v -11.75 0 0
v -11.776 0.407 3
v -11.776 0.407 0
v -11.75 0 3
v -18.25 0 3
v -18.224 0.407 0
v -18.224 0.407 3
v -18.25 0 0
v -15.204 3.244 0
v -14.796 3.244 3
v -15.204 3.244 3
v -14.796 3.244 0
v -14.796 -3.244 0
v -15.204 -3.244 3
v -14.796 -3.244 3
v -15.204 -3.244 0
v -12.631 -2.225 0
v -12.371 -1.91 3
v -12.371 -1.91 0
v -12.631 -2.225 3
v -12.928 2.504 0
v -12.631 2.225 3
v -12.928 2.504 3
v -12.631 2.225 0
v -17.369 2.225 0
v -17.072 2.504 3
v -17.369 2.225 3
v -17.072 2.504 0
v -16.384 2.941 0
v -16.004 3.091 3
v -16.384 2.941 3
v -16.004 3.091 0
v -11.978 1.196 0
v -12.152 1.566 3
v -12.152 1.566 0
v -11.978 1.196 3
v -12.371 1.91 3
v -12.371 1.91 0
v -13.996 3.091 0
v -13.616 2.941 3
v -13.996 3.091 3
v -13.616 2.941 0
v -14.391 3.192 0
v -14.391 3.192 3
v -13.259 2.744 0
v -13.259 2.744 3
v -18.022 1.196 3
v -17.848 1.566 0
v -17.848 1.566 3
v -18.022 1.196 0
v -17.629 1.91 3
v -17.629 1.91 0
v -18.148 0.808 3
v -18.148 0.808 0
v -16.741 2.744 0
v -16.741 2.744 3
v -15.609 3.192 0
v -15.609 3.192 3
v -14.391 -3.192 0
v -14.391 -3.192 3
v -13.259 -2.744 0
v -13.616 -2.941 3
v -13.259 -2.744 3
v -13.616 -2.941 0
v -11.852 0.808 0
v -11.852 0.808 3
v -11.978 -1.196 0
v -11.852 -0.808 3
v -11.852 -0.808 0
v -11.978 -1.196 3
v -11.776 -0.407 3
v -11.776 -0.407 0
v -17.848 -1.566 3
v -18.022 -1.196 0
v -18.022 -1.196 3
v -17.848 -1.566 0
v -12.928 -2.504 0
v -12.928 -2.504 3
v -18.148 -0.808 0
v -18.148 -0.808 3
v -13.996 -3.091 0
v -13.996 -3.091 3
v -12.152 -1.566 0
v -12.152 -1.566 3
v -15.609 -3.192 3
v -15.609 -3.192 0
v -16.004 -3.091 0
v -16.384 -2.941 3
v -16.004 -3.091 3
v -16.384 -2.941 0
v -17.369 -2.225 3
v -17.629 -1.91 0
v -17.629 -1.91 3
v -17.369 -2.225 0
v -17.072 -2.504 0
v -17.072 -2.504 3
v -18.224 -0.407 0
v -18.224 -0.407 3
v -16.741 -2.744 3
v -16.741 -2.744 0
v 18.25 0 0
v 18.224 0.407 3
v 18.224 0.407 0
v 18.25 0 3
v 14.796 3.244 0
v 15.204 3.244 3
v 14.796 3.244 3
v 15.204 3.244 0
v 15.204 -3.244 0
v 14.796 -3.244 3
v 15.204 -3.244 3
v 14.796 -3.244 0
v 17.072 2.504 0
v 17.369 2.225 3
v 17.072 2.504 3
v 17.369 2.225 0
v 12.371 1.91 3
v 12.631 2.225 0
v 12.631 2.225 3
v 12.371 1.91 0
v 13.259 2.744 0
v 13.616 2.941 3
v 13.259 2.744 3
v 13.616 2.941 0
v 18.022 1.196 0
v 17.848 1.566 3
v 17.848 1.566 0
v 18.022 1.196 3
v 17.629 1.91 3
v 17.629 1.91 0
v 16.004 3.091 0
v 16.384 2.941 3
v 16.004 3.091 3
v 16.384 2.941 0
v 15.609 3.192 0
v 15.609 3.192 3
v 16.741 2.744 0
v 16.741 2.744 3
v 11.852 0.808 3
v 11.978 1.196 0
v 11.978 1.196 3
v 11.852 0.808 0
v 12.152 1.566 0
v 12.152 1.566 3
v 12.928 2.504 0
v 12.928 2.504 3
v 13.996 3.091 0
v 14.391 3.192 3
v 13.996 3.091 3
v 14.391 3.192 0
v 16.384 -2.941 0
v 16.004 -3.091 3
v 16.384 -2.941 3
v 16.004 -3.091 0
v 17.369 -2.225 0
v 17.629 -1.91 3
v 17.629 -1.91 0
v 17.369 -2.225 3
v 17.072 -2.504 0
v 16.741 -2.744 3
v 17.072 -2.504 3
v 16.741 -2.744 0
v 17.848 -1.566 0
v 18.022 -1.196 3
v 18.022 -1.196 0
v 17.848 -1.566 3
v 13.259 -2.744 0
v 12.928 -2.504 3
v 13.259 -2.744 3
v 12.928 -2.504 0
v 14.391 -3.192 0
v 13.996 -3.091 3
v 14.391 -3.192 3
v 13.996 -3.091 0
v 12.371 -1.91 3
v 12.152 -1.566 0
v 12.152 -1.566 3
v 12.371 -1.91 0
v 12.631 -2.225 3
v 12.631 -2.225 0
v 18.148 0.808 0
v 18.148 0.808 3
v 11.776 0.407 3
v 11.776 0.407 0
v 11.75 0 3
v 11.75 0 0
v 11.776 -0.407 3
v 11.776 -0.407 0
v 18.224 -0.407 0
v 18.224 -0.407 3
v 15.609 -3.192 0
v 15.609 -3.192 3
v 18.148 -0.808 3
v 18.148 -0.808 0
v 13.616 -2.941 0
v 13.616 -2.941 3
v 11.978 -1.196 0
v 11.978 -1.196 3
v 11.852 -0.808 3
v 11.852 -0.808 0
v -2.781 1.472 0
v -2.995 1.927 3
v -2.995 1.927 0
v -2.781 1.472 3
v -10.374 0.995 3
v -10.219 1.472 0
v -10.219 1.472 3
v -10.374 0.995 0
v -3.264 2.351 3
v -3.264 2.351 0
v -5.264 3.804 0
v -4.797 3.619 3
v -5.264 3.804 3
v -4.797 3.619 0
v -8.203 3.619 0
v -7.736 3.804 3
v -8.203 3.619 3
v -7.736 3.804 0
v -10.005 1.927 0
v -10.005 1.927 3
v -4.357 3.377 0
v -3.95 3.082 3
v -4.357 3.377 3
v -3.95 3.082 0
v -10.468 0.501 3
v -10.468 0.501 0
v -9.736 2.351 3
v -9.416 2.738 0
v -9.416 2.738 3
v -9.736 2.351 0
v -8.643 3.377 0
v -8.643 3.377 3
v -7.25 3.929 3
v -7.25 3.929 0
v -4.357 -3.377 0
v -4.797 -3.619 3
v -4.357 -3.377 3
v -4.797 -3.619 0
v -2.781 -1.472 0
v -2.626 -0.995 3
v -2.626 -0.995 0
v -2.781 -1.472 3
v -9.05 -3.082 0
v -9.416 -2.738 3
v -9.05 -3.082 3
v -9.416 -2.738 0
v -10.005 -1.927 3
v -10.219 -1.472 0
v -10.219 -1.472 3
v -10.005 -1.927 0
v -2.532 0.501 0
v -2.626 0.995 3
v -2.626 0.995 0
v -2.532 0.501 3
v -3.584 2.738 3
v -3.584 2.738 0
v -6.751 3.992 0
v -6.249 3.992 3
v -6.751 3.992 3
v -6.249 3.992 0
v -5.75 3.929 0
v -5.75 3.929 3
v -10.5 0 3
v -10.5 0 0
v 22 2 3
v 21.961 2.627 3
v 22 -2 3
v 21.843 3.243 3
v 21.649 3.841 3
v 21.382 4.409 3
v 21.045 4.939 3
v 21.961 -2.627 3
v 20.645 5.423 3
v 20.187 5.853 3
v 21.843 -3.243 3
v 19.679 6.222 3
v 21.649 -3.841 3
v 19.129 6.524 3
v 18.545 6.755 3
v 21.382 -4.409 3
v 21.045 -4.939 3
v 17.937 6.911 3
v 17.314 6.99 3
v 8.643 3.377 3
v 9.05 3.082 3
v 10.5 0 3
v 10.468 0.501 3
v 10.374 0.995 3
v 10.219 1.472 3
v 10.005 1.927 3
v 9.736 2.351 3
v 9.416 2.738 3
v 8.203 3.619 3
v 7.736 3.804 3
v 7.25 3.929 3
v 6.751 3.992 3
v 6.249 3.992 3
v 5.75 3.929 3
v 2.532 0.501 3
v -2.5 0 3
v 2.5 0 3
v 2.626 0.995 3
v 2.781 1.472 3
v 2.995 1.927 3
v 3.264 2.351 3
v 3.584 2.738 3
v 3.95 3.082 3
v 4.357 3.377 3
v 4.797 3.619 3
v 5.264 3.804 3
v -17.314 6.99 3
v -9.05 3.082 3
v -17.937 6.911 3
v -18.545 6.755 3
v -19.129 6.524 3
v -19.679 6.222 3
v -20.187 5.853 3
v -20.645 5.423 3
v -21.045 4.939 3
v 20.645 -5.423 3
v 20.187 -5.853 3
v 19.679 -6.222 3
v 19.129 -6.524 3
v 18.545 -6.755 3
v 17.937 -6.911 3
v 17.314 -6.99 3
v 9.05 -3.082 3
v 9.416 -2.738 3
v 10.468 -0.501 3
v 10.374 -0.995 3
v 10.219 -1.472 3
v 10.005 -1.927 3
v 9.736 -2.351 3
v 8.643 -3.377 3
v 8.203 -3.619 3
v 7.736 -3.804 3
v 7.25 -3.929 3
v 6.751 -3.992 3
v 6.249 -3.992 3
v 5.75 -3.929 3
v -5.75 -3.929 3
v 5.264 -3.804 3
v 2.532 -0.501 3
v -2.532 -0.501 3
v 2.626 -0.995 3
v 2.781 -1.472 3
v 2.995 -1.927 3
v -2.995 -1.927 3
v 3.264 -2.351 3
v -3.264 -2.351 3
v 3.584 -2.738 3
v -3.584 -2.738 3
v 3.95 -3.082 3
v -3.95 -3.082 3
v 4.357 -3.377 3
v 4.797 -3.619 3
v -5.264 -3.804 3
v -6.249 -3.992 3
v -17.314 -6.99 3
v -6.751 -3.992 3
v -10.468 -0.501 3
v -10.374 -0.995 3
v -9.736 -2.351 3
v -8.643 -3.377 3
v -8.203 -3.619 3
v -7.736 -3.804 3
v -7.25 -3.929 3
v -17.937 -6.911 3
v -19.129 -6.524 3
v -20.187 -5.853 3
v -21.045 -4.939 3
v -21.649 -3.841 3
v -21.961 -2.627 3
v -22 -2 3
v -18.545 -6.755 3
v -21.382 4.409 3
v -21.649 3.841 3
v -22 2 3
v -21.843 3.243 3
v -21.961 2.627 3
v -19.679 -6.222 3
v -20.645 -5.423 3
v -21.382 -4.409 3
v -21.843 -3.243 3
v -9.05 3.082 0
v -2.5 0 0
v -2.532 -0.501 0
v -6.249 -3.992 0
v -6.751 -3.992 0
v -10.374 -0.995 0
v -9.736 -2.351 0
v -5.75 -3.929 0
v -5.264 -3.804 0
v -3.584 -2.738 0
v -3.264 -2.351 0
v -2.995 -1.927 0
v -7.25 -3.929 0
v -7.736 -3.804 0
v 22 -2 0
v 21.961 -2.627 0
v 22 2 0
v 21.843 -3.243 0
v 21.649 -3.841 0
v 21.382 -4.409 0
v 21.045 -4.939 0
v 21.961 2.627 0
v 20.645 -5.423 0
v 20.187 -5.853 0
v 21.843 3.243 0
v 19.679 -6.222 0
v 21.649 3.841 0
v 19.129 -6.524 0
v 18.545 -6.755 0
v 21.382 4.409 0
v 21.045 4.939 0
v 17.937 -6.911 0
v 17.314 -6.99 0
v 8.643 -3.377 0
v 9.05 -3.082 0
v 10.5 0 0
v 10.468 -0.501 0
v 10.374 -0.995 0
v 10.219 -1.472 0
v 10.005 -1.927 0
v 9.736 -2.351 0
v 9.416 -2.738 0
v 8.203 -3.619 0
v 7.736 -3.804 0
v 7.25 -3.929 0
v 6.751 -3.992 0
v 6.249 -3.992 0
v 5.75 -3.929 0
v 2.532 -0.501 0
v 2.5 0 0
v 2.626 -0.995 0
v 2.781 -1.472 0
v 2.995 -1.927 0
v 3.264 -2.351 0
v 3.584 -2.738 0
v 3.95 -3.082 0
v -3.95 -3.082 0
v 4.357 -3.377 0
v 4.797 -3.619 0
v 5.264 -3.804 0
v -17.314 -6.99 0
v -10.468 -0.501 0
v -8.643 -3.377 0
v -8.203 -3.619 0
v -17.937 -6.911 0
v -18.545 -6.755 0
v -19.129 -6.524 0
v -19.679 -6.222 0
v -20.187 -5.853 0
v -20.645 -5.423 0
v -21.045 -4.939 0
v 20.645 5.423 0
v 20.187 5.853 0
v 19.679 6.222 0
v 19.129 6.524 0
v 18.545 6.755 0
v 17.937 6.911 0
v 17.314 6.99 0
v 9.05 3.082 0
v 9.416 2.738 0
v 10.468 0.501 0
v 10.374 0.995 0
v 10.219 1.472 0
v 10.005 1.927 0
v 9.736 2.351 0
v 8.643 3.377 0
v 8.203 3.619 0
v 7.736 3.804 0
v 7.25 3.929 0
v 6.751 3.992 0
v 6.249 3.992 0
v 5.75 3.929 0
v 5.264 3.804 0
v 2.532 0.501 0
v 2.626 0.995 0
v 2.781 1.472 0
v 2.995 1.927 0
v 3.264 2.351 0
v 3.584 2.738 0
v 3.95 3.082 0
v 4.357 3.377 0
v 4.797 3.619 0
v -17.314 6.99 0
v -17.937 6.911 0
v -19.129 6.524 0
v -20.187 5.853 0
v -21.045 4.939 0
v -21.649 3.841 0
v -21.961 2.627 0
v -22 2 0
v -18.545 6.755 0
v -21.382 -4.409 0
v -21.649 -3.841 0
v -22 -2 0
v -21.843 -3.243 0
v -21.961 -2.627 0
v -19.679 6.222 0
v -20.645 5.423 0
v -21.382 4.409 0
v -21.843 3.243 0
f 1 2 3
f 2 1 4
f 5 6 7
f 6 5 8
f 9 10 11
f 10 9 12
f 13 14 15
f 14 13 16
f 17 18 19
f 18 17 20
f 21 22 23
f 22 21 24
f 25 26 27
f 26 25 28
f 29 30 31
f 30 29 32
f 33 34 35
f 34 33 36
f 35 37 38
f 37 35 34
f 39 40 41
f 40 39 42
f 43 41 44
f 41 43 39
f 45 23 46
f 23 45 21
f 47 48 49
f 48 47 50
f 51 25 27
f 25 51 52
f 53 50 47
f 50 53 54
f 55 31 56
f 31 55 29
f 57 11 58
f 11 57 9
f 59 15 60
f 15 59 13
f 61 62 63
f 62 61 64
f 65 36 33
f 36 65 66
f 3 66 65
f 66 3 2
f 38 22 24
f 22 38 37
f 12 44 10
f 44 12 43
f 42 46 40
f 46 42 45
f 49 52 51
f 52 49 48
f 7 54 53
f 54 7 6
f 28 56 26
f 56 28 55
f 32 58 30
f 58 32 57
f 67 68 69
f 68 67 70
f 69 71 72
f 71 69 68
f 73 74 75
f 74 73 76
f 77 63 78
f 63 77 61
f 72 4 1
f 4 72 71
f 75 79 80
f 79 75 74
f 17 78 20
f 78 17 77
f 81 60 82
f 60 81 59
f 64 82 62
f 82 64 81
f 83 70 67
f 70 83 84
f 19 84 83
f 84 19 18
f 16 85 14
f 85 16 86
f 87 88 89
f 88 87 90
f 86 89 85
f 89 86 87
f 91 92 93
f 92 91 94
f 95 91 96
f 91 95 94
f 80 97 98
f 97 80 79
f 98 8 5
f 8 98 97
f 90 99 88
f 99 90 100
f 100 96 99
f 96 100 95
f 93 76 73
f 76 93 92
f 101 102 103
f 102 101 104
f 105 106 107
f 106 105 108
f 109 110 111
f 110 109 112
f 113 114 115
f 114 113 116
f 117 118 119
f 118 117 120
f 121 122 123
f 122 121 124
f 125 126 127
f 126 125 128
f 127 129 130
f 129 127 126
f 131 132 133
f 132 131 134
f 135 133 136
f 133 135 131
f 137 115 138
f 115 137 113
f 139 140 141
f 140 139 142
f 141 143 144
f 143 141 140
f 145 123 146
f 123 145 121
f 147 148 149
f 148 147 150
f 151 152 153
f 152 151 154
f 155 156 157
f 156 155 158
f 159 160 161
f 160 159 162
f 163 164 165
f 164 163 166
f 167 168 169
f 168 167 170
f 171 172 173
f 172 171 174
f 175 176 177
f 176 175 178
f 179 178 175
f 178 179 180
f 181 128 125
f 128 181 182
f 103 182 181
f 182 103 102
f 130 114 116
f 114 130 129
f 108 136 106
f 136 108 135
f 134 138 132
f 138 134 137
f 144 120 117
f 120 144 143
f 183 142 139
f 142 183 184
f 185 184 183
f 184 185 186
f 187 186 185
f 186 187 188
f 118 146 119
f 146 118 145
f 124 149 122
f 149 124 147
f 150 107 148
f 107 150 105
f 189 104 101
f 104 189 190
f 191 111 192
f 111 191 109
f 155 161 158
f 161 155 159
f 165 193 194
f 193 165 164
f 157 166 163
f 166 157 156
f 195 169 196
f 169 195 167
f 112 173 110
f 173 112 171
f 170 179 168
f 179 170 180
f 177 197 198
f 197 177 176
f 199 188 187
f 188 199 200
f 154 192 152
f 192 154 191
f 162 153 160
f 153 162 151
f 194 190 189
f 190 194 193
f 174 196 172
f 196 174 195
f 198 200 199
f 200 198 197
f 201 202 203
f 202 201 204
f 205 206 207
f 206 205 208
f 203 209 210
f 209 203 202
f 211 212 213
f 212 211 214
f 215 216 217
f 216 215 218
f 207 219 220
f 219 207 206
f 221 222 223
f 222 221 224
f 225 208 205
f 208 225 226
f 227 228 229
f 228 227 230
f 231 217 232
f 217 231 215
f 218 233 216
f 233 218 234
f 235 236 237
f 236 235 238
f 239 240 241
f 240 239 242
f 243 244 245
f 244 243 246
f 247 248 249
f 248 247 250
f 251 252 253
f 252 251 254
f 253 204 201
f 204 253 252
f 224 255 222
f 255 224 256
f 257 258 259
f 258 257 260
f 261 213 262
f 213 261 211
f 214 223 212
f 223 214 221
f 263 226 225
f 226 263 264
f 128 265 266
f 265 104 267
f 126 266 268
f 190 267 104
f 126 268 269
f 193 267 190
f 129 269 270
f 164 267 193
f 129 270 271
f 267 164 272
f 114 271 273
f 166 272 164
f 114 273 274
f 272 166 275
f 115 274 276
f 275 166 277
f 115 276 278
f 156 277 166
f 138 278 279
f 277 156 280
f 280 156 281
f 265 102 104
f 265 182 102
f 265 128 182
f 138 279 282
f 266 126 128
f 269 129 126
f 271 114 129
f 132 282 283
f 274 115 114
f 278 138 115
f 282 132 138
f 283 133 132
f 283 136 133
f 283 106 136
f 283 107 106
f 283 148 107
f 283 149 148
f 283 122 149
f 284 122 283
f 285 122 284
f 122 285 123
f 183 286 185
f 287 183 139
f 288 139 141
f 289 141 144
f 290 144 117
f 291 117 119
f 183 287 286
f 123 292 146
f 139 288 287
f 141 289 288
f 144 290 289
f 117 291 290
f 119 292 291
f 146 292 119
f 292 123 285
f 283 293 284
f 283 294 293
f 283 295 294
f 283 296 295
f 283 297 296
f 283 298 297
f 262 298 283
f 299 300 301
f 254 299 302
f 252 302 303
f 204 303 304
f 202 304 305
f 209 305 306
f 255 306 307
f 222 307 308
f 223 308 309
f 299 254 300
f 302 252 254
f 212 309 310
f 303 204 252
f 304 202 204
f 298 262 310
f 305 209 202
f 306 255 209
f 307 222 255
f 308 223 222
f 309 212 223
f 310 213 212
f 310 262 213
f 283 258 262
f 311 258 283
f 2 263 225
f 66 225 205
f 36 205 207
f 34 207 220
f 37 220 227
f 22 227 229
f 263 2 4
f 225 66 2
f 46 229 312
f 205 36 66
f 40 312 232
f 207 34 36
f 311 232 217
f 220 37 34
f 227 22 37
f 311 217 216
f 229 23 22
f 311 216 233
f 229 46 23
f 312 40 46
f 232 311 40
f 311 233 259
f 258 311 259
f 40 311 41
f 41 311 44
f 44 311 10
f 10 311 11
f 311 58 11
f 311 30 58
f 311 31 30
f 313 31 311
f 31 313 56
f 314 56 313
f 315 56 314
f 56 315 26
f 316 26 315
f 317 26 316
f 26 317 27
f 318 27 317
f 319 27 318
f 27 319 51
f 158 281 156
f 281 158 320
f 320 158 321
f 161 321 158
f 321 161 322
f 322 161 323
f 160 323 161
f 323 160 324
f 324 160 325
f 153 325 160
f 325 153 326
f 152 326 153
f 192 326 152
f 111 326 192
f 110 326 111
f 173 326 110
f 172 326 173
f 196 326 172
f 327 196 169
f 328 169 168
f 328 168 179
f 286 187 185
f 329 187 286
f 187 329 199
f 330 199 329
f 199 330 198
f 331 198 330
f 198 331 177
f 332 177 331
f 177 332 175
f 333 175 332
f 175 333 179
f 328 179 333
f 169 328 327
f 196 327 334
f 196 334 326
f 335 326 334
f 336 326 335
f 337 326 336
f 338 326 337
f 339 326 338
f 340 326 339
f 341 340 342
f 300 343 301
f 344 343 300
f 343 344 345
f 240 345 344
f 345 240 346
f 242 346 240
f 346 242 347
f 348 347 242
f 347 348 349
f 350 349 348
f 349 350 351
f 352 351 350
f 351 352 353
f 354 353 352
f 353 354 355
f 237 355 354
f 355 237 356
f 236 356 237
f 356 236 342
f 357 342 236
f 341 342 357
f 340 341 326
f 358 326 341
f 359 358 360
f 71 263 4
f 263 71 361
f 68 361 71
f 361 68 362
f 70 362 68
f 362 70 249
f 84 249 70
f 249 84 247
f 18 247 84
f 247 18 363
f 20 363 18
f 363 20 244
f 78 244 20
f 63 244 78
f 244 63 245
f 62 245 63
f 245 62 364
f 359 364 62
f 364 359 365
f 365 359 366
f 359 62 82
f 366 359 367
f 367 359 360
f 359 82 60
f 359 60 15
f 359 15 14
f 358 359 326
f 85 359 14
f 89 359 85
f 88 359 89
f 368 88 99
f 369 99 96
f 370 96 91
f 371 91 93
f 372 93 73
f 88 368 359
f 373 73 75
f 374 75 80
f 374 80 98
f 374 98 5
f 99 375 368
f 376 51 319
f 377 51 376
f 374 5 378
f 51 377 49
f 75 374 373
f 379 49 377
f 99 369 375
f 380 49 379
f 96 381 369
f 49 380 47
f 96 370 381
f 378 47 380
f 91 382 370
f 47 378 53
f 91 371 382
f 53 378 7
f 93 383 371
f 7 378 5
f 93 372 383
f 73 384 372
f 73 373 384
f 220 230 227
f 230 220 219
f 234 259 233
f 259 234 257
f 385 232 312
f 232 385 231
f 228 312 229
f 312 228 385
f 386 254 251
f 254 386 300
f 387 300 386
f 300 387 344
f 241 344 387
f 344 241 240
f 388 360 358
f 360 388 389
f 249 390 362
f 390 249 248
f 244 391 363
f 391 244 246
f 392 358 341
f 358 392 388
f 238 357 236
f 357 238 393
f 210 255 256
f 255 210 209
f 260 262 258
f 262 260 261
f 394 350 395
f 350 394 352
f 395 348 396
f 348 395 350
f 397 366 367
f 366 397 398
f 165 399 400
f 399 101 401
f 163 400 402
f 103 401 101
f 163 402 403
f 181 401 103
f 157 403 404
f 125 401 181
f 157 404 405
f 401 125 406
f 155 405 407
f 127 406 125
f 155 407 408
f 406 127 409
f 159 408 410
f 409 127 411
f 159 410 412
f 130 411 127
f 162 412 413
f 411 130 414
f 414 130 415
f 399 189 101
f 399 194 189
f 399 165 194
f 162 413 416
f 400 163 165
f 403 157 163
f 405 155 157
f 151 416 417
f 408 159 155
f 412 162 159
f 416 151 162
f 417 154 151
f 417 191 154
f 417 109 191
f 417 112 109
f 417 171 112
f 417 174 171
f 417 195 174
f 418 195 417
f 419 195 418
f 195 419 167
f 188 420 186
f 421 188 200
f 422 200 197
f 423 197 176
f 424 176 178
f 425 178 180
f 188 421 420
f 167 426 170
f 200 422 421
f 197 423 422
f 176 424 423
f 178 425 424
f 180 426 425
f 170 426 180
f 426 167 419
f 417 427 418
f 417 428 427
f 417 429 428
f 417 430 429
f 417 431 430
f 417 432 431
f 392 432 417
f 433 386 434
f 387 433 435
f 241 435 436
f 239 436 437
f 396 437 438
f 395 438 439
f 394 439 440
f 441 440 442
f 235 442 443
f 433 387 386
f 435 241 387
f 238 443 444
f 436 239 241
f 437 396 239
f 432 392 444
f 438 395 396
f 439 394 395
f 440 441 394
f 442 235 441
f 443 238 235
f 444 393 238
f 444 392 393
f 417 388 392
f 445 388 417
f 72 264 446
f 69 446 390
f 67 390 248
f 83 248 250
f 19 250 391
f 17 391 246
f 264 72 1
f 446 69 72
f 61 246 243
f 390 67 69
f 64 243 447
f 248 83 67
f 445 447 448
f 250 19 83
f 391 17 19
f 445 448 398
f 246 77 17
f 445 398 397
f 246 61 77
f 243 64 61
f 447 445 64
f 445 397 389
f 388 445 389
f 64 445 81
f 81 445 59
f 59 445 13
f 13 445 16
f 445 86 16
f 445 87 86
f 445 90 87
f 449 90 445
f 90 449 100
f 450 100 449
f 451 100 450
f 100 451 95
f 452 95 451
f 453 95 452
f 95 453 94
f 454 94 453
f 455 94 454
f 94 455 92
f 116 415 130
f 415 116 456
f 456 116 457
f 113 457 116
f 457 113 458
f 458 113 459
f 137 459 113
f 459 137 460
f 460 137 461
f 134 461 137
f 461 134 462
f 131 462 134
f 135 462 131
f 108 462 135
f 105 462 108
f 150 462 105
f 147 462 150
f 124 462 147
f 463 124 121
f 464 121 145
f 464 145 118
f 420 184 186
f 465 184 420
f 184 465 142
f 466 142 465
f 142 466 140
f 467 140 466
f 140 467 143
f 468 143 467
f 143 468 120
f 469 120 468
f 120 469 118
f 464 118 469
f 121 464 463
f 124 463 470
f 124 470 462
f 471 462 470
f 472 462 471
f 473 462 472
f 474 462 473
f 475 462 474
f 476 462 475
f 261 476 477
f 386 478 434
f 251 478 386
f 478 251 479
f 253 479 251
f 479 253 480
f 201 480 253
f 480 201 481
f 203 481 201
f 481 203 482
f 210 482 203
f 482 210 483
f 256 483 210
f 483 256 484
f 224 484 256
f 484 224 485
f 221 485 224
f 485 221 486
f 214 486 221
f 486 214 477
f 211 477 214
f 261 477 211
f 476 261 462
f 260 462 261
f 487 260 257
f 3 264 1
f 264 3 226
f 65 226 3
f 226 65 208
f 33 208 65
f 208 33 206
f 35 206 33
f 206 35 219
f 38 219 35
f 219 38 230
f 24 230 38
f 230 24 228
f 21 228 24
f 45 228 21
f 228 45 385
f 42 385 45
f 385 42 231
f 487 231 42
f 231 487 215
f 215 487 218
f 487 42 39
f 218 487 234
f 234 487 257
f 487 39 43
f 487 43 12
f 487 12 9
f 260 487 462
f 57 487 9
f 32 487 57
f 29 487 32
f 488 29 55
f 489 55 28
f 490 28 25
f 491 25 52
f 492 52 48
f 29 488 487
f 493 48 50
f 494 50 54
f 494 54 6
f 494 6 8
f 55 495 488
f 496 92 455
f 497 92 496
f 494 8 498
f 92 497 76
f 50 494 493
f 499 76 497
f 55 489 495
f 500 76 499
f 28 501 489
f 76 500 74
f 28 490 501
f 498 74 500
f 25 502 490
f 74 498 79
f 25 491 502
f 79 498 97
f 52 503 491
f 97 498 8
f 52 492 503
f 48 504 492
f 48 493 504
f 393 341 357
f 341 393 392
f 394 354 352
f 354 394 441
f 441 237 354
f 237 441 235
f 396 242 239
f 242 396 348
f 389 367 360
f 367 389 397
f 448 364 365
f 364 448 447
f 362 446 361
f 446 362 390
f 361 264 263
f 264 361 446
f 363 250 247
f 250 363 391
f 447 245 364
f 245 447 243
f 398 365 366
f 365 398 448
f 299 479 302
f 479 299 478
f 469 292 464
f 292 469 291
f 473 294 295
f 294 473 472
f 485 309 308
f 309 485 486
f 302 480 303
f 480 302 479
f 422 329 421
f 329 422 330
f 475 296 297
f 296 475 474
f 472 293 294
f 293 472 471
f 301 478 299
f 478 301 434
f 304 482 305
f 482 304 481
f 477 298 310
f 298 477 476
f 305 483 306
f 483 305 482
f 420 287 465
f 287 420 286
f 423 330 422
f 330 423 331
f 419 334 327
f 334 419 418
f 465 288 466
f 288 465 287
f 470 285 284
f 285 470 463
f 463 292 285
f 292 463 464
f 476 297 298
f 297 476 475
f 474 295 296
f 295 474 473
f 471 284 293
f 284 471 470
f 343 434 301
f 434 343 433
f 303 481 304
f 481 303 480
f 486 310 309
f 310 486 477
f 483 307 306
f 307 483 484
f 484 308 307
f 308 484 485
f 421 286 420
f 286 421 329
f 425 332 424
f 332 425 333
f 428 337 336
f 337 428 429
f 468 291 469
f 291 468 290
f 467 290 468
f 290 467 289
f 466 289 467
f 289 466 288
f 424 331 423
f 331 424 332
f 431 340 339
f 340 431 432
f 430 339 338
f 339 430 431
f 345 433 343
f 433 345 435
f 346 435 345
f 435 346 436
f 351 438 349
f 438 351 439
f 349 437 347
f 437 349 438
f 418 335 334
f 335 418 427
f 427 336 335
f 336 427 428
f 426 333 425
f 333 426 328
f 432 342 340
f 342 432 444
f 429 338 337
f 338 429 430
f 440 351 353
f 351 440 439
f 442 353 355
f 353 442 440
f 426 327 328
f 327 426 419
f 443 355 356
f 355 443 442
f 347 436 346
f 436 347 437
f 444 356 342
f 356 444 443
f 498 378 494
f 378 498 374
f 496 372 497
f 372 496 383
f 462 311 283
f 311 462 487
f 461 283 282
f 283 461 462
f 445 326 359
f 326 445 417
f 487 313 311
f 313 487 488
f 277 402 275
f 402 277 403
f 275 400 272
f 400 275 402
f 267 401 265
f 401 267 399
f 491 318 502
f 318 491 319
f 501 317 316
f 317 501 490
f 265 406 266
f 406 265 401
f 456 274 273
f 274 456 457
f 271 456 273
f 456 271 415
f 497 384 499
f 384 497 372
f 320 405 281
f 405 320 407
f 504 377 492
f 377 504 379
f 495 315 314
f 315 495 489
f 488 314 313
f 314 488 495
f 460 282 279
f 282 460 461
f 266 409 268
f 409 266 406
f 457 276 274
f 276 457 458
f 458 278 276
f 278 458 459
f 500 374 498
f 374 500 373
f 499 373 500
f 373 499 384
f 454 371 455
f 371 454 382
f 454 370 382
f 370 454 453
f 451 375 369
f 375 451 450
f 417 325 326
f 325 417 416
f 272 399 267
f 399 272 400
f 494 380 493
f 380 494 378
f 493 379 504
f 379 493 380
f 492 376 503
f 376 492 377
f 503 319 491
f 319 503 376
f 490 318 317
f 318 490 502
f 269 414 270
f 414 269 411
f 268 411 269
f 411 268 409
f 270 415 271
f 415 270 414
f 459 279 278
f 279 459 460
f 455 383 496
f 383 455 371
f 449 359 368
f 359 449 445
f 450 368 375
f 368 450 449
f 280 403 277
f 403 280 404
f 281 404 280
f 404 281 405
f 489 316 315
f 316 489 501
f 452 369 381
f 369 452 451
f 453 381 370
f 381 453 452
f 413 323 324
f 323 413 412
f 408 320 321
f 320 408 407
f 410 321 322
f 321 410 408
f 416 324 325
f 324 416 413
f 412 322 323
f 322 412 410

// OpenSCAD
$fn = 50;


difference() {
	union() {
		hull() {
			translate(v = [-17.0000000000, 2.0000000000, 0]) {
				cylinder(h = 3, r = 5);
			}
			translate(v = [17.0000000000, 2.0000000000, 0]) {
				cylinder(h = 3, r = 5);
			}
			translate(v = [-17.0000000000, -2.0000000000, 0]) {
				cylinder(h = 3, r = 5);
			}
			translate(v = [17.0000000000, -2.0000000000, 0]) {
				cylinder(h = 3, r = 5);
			}
		}
	}
	union() {
		#translate(v = [-15.0000000000, 0.0000000000, 0]) {
			cylinder(h = 3, r = 3.2500000000);
		}
		#translate(v = [15.0000000000, 0.0000000000, 0]) {
			cylinder(h = 3, r = 3.2500000000);
		}
		#translate(v = [-15.0000000000, 0.0000000000, -100.0000000000]) {
			cylinder(h = 200, r = 3.2500000000);
		}
		#translate(v = [-15.0000000000, 0.0000000000, -100.0000000000]) {
			cylinder(h = 200, r = 3.2500000000);
		}
		#translate(v = [15.0000000000, 0.0000000000, -100.0000000000]) {
			cylinder(h = 200, r = 3.2500000000);
		}
		#translate(v = [15.0000000000, 0.0000000000, -100.0000000000]) {
			cylinder(h = 200, r = 3.2500000000);
		}
		#translate(v = [-15.0000000000, 0.0000000000, 0]) {
			cylinder(h = 3, r = 1.8000000000);
		}
		#translate(v = [15.0000000000, 0.0000000000, 0]) {
			cylinder(h = 3, r = 1.8000000000);
		}
		#translate(v = [-15.0000000000, 0.0000000000, 0]) {
			cylinder(h = 3, r = 1.8000000000);
		}
		#translate(v = [15.0000000000, 0.0000000000, 0]) {
			cylinder(h = 3, r = 1.8000000000);
		}
		#translate(v = [-15.0000000000, 0.0000000000, 0]) {
			cylinder(h = 3, r = 1.8000000000);
		}
		#translate(v = [15.0000000000, 0.0000000000, 0]) {
			cylinder(h = 3, r = 1.8000000000);
		}
		#translate(v = [-6.5000000000, 0, 0]) {
			cylinder(h = 3, r = 4.0000000000);
		}
		#translate(v = [6.5000000000, 0, 0]) {
			cylinder(h = 3, r = 4.0000000000);
		}
	}
}
